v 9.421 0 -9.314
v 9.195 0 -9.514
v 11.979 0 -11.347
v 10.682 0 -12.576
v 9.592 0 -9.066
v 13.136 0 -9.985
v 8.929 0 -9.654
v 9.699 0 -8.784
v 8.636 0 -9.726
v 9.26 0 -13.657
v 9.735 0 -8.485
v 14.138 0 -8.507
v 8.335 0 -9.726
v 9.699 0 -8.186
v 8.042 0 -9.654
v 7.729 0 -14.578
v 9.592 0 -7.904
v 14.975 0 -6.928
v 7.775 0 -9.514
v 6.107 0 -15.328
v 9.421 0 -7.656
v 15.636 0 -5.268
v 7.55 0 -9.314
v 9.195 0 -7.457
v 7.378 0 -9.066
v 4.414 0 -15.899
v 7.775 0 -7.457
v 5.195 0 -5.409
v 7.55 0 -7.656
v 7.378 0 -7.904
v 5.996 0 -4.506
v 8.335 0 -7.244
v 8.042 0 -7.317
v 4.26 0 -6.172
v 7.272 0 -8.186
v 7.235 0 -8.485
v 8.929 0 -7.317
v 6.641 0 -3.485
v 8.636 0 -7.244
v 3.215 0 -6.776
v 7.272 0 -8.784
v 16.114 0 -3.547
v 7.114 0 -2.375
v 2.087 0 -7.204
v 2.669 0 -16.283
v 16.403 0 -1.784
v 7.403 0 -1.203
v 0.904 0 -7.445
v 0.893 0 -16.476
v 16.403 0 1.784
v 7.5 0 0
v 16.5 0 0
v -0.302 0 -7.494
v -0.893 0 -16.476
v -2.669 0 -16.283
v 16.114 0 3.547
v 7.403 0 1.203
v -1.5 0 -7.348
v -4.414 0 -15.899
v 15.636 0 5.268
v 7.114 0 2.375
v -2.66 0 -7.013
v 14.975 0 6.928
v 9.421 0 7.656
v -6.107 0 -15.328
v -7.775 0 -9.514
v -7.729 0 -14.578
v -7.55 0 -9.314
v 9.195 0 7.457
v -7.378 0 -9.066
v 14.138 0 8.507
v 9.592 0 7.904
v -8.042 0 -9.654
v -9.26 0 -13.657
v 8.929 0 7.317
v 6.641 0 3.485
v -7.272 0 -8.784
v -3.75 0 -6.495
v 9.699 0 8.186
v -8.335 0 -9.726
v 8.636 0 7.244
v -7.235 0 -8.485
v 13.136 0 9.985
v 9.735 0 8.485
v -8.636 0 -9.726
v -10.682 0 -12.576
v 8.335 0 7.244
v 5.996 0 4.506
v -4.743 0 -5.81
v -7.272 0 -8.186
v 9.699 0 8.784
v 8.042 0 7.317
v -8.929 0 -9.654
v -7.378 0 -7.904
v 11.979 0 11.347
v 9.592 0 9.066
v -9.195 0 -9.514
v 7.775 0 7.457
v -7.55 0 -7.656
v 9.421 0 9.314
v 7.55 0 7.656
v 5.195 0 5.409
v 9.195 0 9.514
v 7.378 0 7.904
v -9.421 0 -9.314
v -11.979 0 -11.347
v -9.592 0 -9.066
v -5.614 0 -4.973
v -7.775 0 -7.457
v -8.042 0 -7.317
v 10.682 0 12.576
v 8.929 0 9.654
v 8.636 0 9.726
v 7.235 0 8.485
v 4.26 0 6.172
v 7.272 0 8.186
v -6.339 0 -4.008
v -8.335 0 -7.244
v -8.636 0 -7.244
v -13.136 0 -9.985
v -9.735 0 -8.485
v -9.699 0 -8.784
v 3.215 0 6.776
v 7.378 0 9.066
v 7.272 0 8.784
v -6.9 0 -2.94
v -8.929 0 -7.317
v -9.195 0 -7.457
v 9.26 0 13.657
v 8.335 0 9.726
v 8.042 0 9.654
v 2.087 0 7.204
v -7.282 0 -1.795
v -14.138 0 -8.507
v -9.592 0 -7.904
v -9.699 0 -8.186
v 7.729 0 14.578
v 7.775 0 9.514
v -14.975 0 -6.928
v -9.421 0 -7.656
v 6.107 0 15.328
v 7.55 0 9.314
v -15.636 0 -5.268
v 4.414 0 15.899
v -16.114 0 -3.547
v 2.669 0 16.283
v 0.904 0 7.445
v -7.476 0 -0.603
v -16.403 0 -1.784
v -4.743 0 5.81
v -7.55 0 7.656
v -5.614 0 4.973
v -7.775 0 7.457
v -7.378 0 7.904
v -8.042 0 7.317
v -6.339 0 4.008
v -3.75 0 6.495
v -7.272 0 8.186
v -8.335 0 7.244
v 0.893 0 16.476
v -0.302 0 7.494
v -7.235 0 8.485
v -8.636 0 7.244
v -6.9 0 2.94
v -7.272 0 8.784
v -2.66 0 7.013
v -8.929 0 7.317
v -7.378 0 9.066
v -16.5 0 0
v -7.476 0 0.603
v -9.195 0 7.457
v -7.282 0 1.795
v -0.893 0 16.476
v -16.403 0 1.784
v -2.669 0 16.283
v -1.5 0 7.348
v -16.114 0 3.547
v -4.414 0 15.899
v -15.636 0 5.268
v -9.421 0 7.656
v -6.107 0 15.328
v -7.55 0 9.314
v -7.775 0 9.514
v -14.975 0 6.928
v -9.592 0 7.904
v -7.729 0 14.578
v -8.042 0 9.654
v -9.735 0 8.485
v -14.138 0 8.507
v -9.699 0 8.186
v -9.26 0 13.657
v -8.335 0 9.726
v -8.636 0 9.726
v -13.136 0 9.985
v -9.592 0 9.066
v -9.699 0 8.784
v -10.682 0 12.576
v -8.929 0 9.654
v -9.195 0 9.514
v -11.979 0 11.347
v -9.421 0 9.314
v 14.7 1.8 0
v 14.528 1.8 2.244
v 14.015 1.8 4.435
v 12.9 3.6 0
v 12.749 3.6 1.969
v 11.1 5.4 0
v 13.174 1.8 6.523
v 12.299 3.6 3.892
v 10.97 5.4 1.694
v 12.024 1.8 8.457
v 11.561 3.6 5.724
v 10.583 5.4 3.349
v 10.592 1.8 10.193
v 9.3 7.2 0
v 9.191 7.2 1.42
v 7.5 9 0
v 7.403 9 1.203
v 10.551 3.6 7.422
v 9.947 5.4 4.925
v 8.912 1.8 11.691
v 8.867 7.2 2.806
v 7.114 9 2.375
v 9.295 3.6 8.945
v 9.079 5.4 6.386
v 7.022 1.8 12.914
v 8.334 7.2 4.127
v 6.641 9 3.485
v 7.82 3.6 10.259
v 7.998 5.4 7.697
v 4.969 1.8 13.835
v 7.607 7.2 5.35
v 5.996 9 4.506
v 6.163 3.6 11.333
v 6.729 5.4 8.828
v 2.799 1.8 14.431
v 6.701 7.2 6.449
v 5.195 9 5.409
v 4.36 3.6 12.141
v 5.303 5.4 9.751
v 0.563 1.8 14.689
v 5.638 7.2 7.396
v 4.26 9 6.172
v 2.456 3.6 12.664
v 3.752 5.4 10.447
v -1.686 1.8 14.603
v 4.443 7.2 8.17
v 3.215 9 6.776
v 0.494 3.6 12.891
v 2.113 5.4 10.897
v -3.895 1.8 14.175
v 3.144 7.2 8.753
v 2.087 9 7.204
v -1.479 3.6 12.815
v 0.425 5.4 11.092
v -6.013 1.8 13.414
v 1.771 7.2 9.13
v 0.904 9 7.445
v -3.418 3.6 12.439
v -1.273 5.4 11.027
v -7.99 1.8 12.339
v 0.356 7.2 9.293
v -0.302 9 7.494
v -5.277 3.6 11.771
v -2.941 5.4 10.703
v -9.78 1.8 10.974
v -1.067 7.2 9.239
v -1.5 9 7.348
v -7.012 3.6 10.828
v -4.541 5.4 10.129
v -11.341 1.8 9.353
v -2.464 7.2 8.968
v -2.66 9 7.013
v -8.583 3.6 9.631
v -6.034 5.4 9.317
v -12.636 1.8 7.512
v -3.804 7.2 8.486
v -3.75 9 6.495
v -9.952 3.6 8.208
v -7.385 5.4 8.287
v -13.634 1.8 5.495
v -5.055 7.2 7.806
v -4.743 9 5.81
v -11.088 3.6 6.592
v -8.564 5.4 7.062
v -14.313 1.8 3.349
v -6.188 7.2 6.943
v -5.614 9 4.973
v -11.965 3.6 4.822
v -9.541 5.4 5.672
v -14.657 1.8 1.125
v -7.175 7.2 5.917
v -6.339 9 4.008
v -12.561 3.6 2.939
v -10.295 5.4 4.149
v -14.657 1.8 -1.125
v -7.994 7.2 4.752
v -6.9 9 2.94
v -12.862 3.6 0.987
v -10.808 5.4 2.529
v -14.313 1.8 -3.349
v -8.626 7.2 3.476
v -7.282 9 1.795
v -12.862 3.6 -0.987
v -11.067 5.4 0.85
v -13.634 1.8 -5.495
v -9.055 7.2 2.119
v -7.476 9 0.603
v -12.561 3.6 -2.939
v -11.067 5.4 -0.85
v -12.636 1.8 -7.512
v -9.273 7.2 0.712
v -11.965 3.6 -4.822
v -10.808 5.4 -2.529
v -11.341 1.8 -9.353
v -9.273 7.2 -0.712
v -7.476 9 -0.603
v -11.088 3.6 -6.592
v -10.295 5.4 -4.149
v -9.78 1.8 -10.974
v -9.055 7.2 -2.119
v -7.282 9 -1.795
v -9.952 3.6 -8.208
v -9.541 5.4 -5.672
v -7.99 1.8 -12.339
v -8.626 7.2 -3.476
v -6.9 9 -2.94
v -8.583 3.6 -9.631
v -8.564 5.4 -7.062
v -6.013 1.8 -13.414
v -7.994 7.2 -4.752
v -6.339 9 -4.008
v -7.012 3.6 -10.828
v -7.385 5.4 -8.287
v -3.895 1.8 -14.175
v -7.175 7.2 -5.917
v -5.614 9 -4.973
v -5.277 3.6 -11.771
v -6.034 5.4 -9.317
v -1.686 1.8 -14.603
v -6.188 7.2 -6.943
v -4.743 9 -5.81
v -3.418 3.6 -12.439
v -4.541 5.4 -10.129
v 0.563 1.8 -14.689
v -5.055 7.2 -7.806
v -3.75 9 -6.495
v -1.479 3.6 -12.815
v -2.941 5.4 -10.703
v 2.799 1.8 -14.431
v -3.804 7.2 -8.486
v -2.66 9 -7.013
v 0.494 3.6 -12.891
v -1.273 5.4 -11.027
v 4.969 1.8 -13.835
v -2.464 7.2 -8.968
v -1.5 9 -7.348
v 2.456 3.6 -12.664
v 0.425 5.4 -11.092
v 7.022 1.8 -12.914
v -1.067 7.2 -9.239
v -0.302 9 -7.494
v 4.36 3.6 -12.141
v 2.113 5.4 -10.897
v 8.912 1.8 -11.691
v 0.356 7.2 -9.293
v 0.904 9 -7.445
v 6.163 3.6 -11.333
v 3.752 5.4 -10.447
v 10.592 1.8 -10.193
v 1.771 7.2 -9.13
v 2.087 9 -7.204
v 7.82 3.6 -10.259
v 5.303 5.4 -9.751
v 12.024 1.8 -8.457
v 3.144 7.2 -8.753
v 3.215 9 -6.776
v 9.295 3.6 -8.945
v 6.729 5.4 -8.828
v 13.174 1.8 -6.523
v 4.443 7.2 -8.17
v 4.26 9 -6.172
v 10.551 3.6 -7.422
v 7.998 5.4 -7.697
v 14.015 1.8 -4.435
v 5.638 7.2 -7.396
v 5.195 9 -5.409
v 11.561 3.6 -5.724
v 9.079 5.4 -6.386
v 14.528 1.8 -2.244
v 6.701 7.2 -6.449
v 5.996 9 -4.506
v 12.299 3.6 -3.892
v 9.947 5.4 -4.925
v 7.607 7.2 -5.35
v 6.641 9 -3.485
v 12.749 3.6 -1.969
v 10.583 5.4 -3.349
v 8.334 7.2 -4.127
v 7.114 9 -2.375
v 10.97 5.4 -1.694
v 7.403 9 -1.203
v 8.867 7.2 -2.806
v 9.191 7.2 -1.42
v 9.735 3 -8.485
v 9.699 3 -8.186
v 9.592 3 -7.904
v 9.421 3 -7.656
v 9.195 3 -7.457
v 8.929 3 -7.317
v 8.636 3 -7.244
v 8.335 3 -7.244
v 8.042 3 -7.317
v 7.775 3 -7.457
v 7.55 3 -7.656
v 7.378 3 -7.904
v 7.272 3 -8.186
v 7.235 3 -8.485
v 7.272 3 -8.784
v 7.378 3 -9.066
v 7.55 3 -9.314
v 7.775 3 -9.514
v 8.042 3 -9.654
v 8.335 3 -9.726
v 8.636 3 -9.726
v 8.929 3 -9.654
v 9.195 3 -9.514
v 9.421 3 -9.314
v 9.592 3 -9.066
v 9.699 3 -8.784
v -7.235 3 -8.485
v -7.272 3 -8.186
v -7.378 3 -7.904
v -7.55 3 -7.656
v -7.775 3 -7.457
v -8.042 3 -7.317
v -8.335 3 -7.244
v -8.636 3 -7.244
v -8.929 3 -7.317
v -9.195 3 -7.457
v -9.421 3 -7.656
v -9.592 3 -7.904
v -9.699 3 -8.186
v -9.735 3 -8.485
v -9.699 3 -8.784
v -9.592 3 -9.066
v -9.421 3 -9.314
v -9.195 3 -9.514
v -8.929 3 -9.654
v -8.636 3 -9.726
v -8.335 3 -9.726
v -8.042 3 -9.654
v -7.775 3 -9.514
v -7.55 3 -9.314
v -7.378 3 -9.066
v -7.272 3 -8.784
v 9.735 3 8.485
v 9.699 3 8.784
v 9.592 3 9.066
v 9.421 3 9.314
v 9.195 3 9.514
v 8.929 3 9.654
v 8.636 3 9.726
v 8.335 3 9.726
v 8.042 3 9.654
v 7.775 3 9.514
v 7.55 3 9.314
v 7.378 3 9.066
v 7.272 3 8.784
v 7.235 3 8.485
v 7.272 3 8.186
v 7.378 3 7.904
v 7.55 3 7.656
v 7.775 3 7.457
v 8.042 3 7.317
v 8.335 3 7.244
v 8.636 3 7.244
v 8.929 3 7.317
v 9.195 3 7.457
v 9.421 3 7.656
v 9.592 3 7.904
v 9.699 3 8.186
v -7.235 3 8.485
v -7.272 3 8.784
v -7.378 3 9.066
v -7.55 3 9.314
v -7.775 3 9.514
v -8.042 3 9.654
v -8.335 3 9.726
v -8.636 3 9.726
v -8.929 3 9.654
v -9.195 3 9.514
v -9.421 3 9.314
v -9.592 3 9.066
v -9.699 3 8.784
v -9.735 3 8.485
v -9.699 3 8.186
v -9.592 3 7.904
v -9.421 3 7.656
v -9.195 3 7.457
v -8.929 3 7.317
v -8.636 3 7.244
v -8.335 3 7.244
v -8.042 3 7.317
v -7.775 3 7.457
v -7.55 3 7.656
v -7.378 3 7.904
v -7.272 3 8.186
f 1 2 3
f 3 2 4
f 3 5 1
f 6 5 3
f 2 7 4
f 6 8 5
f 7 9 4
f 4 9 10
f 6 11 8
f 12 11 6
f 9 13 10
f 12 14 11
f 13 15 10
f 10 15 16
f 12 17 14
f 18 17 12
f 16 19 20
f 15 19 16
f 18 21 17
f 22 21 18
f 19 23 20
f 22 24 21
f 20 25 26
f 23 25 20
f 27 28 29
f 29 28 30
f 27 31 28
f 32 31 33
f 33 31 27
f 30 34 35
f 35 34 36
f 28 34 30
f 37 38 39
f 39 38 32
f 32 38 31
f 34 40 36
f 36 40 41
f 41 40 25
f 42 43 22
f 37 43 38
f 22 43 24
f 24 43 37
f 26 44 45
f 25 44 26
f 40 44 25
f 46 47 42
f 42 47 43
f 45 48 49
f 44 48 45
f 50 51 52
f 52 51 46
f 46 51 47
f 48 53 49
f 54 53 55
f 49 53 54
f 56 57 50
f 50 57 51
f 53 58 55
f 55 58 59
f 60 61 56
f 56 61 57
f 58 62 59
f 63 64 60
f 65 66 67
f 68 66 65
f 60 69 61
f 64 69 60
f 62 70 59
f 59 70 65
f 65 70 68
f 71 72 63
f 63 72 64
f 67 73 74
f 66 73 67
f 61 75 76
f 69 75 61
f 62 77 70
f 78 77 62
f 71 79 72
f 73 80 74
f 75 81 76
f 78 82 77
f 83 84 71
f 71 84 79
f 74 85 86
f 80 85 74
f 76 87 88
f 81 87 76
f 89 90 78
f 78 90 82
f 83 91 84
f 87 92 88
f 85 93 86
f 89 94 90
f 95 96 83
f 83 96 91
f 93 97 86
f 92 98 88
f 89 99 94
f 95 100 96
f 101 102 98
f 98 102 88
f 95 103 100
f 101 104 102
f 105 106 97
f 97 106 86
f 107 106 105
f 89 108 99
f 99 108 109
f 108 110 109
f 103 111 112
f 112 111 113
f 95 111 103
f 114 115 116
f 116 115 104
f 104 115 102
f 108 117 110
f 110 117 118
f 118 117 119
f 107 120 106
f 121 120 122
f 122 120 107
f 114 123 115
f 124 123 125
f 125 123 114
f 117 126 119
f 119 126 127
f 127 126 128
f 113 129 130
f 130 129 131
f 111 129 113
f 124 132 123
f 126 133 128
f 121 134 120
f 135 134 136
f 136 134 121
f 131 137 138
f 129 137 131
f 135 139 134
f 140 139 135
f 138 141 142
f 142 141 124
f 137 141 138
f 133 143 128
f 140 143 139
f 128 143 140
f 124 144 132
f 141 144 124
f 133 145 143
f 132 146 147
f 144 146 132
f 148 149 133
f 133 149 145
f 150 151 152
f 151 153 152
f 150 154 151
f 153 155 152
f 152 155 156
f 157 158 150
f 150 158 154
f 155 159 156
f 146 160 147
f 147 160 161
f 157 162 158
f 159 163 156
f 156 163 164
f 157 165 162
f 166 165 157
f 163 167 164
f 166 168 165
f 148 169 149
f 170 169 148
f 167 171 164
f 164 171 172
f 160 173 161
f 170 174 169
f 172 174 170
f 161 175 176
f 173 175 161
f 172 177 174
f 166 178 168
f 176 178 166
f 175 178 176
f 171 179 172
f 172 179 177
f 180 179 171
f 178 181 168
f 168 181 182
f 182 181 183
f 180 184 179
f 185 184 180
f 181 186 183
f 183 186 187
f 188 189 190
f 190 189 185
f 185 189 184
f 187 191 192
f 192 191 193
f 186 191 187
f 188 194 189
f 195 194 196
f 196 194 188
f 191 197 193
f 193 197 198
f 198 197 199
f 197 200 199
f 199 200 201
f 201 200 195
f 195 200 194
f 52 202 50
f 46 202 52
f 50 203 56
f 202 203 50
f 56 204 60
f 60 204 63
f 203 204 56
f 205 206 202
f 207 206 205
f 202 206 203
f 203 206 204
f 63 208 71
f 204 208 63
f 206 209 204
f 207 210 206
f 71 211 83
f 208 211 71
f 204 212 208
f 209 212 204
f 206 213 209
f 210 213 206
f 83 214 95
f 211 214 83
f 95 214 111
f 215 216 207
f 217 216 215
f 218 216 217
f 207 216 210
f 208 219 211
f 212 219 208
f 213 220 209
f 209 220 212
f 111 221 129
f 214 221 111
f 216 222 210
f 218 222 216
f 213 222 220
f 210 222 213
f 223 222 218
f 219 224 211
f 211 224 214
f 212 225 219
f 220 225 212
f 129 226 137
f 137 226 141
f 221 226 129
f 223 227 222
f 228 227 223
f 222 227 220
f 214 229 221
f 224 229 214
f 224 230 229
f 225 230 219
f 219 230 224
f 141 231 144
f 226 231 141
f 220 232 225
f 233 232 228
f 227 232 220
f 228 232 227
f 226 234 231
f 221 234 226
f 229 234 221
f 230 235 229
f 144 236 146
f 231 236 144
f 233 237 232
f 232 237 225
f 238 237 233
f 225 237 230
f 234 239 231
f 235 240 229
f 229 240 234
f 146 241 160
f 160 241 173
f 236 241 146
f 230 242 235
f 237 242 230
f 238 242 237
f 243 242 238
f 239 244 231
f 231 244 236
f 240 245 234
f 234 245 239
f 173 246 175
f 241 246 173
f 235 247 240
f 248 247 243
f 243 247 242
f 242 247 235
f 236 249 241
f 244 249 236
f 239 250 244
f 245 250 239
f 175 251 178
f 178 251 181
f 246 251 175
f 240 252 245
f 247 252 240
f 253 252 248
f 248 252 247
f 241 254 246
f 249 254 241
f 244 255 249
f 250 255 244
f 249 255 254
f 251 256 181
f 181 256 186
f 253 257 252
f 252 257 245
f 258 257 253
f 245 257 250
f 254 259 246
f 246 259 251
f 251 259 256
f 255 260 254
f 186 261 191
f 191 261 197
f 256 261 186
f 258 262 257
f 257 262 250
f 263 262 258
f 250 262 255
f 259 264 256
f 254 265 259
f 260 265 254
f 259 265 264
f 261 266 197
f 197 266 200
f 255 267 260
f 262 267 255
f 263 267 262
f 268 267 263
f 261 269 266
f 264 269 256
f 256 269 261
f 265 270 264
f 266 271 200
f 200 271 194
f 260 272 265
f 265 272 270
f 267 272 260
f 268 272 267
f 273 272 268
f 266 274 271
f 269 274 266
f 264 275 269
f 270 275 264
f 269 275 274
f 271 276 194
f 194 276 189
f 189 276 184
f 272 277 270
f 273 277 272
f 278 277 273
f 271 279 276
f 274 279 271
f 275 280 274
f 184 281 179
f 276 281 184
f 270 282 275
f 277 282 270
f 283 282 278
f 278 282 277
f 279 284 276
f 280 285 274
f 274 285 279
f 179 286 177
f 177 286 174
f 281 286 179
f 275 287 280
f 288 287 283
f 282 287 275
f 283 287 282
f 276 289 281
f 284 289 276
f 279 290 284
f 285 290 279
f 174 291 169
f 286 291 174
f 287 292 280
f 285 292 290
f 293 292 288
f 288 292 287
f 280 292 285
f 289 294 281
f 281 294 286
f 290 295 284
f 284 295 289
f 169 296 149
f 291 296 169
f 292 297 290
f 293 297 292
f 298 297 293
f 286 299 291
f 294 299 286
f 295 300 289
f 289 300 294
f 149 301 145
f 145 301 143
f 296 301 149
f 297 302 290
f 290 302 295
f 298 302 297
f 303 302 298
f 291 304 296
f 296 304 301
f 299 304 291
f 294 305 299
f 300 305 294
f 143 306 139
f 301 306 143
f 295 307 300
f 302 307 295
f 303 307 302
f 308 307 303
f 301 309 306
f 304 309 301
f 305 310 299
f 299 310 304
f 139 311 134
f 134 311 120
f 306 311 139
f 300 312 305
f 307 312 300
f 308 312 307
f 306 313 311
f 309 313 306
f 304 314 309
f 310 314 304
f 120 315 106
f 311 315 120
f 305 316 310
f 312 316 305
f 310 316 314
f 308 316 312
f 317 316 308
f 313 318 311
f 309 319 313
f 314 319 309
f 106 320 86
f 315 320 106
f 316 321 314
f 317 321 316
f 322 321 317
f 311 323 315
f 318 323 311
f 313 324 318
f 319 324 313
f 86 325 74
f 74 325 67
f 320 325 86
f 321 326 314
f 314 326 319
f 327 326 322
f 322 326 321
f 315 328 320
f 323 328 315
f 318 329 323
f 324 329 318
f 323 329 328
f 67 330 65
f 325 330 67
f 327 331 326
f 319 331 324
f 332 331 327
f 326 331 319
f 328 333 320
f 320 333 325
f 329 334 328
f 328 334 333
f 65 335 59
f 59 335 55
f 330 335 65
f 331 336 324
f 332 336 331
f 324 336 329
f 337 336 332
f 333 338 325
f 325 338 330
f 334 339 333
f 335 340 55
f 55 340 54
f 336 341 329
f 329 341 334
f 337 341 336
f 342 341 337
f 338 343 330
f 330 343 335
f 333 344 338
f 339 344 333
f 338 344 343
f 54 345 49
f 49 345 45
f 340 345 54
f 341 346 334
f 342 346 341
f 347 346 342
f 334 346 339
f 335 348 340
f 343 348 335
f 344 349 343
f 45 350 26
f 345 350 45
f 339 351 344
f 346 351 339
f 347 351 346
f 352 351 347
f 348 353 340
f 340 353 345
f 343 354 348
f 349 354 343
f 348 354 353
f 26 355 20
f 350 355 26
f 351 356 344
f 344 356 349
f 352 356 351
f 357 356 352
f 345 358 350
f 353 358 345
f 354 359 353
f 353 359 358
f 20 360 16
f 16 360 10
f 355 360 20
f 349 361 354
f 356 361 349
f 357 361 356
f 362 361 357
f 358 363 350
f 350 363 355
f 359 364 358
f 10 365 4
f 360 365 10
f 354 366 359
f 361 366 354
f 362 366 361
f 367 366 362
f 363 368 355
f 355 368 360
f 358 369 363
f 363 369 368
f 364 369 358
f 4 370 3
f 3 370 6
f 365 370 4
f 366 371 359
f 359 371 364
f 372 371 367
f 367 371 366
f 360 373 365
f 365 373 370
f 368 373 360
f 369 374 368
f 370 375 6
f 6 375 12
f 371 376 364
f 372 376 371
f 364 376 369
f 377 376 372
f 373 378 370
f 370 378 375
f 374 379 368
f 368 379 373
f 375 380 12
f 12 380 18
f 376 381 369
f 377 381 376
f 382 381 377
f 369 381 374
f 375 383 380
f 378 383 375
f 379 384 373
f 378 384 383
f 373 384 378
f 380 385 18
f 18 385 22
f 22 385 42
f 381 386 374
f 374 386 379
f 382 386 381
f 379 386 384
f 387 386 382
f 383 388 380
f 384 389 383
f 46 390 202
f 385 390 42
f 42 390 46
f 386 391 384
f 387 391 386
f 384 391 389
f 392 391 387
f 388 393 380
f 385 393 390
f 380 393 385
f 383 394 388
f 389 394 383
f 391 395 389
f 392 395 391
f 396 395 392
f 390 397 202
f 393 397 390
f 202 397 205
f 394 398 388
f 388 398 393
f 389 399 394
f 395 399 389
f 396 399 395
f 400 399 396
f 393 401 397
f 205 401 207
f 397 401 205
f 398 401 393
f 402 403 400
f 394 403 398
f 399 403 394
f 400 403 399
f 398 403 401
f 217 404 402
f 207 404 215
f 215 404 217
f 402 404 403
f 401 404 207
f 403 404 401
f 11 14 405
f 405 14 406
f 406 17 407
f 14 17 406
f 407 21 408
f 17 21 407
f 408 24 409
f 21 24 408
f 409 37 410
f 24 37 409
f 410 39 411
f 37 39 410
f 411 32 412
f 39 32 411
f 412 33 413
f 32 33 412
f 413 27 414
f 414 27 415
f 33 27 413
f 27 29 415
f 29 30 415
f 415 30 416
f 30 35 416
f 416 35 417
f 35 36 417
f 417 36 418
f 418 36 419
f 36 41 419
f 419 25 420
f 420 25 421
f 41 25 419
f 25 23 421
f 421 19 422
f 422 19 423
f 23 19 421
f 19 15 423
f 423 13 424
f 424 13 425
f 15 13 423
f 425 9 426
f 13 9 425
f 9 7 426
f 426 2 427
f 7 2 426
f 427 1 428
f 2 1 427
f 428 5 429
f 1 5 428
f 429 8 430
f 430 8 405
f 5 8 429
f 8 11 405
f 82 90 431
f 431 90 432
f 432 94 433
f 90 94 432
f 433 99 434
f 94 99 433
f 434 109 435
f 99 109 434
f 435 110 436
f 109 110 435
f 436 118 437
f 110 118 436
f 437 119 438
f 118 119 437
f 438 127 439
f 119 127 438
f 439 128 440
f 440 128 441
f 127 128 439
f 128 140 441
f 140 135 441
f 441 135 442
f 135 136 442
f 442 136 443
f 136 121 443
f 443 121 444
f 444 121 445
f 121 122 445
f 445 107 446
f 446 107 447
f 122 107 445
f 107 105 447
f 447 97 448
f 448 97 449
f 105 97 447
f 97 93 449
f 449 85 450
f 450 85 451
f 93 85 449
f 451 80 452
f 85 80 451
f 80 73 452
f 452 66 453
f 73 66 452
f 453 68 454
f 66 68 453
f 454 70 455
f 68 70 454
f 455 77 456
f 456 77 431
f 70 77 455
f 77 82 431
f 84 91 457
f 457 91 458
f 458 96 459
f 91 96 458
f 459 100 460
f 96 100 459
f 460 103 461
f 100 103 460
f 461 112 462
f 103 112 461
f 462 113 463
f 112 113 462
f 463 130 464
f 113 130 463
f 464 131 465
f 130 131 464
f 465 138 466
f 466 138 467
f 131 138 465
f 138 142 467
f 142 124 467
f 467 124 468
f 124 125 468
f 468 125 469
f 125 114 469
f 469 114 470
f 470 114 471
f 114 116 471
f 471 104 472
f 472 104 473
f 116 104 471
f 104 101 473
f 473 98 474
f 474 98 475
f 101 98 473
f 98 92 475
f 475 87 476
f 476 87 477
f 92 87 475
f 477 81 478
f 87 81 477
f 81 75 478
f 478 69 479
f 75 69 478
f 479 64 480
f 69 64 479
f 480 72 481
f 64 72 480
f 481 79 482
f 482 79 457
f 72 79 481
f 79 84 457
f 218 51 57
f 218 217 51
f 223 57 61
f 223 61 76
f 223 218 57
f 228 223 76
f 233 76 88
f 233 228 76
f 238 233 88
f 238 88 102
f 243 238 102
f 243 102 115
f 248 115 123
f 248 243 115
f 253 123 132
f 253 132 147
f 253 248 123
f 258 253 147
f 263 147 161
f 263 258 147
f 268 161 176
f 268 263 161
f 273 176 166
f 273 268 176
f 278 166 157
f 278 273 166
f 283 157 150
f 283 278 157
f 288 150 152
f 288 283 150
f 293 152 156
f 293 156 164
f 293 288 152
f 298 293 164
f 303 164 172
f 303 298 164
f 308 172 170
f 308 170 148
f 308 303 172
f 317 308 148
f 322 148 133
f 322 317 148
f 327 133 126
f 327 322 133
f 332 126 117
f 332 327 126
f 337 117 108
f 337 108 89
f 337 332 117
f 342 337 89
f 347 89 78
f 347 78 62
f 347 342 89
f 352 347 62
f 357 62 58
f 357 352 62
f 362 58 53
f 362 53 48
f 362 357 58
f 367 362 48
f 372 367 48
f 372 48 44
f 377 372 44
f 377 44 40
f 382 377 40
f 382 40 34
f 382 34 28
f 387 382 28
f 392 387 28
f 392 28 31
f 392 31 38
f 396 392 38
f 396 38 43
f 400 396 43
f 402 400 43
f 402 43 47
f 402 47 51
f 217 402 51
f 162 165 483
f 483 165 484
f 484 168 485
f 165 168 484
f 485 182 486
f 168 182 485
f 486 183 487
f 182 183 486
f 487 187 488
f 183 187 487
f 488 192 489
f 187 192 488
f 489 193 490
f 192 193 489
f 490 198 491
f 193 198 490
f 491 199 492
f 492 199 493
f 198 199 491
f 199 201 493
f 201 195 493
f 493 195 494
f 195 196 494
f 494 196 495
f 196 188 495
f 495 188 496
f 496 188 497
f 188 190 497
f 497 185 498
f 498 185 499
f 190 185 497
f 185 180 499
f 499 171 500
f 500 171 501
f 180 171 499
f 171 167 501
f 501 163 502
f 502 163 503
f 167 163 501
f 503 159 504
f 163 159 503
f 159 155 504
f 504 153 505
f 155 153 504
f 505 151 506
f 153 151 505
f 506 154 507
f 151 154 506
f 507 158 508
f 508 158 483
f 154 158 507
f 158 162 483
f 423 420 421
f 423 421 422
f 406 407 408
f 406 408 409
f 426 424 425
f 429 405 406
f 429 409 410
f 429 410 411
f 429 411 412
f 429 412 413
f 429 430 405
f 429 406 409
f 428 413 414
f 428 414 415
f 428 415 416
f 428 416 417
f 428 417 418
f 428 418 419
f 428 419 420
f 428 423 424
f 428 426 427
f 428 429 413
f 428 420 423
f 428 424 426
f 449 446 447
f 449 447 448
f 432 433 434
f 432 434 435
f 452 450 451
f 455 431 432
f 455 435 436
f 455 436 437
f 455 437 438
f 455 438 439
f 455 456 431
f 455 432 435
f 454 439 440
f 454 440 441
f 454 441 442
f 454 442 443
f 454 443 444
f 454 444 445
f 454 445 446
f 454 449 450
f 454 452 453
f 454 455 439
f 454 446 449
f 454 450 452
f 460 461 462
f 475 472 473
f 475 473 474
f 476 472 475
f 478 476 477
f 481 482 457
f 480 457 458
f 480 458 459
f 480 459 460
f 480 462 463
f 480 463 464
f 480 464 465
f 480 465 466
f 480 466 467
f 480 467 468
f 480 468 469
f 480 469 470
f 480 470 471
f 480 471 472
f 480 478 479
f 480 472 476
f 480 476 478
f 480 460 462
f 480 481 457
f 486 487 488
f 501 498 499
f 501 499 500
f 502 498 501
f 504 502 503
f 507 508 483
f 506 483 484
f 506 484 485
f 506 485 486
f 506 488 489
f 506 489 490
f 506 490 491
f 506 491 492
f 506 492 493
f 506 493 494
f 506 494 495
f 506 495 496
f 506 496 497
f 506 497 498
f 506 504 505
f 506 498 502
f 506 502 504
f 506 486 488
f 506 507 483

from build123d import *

# Parameters (mm, degrees)
SKETCH001_R  = 1.25
POCKET_DEPTH = 3


with BuildPart() as part:
    # Sketch → Revolution (revolve)
    with BuildSketch(Plane.XY):
        Polygon((7.5, 0), (16.5, 0), (7.5, 9), align=None)
    revolve(axis=Axis((0, 0, 0), (0, 1, 0)))

    # Sketch001 (on Face1 of Revolution) → Pocket (cut)
    with BuildSketch(Plane.XZ):
        with Locations((-8.485281, 8.485281)):
            Circle(SKETCH001_R)
        with Locations((8.485281, 8.485281)):
            Circle(SKETCH001_R)
        with Locations((8.485281, -8.485281)):
            Circle(SKETCH001_R)
        with Locations((-8.485281, -8.485281)):
            Circle(SKETCH001_R)
    extrude(amount=-POCKET_DEPTH, mode=Mode.SUBTRACT)


solid = part.part
